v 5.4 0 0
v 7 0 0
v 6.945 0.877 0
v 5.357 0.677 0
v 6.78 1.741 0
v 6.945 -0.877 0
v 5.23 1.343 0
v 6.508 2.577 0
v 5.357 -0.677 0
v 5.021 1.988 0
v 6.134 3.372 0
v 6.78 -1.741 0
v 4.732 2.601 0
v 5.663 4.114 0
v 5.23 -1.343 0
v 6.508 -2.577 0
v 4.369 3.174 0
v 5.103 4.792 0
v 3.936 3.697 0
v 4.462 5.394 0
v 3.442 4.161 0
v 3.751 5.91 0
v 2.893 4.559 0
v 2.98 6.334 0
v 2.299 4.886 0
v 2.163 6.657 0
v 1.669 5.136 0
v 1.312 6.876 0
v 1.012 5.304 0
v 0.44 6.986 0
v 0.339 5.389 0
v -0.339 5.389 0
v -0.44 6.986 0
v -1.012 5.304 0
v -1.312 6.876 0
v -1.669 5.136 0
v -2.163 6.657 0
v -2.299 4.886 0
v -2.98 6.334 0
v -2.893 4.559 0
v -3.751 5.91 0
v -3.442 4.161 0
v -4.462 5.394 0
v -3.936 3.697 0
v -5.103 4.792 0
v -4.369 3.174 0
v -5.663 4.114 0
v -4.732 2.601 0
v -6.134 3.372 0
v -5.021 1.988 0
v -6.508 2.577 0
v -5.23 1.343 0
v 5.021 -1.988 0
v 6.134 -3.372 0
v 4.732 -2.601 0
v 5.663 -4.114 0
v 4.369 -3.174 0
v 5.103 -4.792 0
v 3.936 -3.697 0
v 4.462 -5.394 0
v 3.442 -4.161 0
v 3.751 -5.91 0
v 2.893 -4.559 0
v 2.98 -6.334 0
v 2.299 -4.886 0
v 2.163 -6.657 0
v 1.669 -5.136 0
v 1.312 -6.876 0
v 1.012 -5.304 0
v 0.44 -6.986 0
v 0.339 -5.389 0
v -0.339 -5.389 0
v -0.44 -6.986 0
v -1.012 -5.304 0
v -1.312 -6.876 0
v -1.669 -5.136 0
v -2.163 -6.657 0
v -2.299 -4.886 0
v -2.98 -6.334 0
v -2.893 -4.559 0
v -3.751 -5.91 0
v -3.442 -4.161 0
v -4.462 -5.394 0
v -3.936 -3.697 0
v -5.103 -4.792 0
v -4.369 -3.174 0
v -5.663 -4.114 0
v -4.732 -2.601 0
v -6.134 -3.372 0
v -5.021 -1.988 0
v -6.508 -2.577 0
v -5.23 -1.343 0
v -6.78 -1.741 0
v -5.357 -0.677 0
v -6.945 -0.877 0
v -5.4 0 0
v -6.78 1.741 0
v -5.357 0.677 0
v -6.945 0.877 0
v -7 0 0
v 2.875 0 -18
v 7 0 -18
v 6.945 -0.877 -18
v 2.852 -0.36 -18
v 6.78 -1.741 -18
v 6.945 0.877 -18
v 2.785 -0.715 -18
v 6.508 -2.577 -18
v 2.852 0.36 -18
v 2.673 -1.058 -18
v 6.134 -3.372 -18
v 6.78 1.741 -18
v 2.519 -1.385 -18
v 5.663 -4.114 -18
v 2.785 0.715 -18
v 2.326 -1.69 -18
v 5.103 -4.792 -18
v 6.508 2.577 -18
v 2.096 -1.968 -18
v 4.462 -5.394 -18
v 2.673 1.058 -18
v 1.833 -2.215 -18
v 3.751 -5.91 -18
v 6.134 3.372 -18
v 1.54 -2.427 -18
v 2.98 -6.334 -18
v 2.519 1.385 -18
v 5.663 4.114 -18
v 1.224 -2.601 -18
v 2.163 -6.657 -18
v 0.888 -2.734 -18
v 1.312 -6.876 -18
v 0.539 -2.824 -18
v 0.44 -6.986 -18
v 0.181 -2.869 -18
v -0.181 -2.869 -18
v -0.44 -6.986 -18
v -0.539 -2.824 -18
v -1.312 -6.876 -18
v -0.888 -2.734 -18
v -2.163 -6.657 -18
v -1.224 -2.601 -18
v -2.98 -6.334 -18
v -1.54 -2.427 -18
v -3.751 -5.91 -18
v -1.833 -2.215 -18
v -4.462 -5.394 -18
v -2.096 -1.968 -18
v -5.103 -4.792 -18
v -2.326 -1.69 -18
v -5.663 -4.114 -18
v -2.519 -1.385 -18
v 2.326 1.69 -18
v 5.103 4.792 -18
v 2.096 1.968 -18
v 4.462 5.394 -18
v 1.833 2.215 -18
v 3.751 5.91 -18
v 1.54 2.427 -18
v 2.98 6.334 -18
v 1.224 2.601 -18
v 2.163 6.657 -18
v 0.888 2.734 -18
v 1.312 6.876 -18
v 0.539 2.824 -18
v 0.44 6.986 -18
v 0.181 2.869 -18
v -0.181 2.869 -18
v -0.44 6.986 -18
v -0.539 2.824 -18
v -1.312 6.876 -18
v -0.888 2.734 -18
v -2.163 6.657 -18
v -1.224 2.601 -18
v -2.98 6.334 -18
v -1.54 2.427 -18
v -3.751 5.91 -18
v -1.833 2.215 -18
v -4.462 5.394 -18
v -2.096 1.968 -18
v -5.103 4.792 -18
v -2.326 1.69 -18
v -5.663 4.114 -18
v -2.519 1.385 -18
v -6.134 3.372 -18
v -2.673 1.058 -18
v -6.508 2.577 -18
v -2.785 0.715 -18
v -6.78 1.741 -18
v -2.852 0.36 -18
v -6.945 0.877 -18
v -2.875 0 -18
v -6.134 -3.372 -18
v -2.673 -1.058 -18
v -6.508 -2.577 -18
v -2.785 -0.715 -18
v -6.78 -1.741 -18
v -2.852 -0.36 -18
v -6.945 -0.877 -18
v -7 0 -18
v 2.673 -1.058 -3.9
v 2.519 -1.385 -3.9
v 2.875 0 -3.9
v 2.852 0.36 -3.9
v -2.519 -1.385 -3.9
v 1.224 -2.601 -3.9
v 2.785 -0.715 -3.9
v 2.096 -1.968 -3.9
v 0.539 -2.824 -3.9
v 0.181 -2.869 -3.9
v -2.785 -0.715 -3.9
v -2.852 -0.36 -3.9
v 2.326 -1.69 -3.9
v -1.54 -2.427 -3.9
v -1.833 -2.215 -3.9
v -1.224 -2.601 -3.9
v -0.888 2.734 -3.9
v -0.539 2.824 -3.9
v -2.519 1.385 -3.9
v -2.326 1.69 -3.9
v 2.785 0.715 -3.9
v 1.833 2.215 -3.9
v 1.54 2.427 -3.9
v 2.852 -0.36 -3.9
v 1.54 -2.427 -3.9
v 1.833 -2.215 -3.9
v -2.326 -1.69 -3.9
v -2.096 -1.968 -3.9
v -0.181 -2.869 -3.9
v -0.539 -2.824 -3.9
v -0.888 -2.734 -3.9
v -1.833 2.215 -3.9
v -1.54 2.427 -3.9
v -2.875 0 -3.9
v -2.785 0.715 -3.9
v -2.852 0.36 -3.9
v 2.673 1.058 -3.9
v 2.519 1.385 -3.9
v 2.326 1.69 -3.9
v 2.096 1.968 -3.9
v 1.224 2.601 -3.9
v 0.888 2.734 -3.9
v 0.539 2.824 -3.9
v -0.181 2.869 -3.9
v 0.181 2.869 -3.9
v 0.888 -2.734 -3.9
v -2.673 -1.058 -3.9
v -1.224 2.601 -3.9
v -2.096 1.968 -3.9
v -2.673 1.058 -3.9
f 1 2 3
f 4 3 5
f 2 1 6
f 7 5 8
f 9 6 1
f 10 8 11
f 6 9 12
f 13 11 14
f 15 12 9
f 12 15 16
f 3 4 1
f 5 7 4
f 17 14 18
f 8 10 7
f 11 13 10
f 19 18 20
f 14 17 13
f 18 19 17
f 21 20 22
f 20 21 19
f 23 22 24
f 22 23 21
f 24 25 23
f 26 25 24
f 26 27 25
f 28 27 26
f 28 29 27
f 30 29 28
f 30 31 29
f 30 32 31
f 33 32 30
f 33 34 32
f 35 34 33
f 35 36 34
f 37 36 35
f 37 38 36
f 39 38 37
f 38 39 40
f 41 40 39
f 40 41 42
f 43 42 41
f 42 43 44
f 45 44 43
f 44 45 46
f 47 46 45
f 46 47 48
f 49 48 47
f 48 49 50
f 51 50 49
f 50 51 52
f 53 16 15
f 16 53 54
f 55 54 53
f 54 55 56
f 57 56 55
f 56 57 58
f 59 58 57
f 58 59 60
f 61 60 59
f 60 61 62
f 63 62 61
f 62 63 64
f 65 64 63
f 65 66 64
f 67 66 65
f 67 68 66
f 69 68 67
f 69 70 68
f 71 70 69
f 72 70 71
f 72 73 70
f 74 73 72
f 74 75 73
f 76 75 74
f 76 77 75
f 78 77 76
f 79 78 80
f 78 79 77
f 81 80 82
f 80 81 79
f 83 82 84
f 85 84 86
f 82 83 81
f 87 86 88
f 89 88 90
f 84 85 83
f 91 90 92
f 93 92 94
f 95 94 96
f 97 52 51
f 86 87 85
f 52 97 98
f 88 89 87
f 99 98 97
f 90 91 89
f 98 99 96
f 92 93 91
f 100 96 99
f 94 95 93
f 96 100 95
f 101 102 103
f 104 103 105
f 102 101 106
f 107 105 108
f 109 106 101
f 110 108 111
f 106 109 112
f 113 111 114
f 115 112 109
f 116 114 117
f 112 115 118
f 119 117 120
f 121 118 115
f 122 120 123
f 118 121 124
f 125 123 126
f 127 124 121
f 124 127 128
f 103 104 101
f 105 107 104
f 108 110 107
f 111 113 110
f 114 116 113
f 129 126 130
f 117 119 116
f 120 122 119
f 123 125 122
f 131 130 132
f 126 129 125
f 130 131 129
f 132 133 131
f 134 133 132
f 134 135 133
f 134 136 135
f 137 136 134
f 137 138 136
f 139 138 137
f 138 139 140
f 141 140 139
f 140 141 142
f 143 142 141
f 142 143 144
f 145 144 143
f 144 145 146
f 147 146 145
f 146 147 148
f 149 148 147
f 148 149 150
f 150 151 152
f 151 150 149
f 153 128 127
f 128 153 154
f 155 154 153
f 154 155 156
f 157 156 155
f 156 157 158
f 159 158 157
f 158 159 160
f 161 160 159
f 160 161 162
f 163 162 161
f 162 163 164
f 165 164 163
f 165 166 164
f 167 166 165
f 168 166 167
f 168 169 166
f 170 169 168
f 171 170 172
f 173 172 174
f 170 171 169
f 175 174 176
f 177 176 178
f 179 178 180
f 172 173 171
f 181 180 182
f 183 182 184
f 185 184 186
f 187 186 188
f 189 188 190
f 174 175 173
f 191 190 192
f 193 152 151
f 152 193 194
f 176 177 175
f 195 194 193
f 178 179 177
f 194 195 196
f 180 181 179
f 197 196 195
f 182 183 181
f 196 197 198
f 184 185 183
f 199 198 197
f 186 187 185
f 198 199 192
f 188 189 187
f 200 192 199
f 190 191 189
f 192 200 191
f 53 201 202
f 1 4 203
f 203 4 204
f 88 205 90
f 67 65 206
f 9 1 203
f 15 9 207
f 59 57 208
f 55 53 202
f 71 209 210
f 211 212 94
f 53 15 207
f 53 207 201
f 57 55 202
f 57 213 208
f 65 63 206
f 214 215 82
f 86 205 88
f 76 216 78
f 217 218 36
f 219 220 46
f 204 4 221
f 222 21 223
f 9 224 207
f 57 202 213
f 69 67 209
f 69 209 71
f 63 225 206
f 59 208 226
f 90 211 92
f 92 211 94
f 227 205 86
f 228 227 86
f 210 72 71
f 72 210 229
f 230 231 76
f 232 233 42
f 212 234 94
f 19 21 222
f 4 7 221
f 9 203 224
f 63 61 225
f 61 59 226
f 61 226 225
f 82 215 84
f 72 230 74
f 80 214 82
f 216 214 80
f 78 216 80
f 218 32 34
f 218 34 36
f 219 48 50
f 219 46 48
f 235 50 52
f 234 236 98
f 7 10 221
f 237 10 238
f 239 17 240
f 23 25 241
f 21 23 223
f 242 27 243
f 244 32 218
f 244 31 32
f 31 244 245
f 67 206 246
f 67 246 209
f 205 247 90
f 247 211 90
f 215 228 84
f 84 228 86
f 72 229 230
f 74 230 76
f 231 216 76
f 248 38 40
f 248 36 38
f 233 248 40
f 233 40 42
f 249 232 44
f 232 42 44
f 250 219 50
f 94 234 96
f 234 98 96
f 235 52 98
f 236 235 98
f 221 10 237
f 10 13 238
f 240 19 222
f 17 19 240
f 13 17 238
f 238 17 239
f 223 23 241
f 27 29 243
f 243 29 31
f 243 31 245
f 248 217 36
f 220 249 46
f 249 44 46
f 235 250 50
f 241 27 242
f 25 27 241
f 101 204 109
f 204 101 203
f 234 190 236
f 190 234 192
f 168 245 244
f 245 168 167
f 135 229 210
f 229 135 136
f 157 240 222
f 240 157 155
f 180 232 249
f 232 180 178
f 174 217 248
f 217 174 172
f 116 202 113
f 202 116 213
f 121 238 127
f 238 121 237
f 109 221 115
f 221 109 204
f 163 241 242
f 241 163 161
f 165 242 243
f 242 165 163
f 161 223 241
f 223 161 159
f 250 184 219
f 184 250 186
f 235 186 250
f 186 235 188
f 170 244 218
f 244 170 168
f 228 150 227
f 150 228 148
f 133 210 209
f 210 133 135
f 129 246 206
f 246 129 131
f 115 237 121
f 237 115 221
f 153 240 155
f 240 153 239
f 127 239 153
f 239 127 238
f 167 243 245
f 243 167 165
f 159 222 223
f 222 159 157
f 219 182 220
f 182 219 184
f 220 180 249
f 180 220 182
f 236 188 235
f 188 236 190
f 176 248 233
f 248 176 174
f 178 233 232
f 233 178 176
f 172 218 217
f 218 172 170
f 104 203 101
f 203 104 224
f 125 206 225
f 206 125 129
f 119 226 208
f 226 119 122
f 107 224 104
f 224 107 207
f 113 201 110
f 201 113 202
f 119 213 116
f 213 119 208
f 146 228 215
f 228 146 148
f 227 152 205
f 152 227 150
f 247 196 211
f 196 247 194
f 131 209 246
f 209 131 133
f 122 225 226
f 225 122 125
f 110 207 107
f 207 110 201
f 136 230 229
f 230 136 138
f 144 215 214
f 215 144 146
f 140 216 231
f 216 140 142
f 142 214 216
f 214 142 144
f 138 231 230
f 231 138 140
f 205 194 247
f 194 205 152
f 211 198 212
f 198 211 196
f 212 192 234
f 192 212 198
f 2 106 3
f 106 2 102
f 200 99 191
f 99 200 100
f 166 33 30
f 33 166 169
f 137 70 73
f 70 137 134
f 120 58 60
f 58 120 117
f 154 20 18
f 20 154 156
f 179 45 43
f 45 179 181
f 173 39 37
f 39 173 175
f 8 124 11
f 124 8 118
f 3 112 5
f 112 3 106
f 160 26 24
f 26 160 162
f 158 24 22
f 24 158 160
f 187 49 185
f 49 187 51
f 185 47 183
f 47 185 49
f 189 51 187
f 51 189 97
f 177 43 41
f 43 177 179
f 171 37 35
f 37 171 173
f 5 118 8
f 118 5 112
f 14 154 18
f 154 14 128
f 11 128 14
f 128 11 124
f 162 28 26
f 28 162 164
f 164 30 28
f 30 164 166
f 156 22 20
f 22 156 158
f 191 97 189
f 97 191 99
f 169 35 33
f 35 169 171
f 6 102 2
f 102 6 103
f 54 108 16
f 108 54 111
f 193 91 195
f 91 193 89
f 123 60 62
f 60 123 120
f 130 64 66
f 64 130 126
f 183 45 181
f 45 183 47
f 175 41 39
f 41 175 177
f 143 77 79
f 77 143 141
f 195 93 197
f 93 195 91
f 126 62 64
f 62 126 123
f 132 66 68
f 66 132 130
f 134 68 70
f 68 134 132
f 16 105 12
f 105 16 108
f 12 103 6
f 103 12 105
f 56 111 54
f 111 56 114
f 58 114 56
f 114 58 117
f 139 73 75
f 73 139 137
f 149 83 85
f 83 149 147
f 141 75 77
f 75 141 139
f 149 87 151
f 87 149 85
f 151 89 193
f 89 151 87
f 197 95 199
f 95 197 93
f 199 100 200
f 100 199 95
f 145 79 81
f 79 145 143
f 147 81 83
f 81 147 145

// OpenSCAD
$fn = 50;


difference() {
	union() {
		translate(v = [0, 0, -18.0000000000]) {
			cylinder(h = 18, r = 7.0000000000);
		}
	}
	union() {
		translate(v = [0, 0, 0]) {
			rotate(a = [0, 0, 0]) {
				difference() {
					union() {
						#translate(v = [0, 0, -18.0000000000]) {
							cylinder(h = 18, r = 2.6000000000);
						}
						#translate(v = [0, 0, -3.9000000000]) {
							cylinder(h = 3.9000000000, r = 7.0000000000, r1 = 2.8750000000, r2 = 5.4000000000);
						}
						#translate(v = [0, 0, -18.0000000000]) {
							cylinder(h = 18, r = 2.8750000000);
						}
						#translate(v = [0, 0, -18.0000000000]) {
							cylinder(h = 18, r = 2.6000000000);
						}
					}
					union();
				}
			}
		}
	}
}
